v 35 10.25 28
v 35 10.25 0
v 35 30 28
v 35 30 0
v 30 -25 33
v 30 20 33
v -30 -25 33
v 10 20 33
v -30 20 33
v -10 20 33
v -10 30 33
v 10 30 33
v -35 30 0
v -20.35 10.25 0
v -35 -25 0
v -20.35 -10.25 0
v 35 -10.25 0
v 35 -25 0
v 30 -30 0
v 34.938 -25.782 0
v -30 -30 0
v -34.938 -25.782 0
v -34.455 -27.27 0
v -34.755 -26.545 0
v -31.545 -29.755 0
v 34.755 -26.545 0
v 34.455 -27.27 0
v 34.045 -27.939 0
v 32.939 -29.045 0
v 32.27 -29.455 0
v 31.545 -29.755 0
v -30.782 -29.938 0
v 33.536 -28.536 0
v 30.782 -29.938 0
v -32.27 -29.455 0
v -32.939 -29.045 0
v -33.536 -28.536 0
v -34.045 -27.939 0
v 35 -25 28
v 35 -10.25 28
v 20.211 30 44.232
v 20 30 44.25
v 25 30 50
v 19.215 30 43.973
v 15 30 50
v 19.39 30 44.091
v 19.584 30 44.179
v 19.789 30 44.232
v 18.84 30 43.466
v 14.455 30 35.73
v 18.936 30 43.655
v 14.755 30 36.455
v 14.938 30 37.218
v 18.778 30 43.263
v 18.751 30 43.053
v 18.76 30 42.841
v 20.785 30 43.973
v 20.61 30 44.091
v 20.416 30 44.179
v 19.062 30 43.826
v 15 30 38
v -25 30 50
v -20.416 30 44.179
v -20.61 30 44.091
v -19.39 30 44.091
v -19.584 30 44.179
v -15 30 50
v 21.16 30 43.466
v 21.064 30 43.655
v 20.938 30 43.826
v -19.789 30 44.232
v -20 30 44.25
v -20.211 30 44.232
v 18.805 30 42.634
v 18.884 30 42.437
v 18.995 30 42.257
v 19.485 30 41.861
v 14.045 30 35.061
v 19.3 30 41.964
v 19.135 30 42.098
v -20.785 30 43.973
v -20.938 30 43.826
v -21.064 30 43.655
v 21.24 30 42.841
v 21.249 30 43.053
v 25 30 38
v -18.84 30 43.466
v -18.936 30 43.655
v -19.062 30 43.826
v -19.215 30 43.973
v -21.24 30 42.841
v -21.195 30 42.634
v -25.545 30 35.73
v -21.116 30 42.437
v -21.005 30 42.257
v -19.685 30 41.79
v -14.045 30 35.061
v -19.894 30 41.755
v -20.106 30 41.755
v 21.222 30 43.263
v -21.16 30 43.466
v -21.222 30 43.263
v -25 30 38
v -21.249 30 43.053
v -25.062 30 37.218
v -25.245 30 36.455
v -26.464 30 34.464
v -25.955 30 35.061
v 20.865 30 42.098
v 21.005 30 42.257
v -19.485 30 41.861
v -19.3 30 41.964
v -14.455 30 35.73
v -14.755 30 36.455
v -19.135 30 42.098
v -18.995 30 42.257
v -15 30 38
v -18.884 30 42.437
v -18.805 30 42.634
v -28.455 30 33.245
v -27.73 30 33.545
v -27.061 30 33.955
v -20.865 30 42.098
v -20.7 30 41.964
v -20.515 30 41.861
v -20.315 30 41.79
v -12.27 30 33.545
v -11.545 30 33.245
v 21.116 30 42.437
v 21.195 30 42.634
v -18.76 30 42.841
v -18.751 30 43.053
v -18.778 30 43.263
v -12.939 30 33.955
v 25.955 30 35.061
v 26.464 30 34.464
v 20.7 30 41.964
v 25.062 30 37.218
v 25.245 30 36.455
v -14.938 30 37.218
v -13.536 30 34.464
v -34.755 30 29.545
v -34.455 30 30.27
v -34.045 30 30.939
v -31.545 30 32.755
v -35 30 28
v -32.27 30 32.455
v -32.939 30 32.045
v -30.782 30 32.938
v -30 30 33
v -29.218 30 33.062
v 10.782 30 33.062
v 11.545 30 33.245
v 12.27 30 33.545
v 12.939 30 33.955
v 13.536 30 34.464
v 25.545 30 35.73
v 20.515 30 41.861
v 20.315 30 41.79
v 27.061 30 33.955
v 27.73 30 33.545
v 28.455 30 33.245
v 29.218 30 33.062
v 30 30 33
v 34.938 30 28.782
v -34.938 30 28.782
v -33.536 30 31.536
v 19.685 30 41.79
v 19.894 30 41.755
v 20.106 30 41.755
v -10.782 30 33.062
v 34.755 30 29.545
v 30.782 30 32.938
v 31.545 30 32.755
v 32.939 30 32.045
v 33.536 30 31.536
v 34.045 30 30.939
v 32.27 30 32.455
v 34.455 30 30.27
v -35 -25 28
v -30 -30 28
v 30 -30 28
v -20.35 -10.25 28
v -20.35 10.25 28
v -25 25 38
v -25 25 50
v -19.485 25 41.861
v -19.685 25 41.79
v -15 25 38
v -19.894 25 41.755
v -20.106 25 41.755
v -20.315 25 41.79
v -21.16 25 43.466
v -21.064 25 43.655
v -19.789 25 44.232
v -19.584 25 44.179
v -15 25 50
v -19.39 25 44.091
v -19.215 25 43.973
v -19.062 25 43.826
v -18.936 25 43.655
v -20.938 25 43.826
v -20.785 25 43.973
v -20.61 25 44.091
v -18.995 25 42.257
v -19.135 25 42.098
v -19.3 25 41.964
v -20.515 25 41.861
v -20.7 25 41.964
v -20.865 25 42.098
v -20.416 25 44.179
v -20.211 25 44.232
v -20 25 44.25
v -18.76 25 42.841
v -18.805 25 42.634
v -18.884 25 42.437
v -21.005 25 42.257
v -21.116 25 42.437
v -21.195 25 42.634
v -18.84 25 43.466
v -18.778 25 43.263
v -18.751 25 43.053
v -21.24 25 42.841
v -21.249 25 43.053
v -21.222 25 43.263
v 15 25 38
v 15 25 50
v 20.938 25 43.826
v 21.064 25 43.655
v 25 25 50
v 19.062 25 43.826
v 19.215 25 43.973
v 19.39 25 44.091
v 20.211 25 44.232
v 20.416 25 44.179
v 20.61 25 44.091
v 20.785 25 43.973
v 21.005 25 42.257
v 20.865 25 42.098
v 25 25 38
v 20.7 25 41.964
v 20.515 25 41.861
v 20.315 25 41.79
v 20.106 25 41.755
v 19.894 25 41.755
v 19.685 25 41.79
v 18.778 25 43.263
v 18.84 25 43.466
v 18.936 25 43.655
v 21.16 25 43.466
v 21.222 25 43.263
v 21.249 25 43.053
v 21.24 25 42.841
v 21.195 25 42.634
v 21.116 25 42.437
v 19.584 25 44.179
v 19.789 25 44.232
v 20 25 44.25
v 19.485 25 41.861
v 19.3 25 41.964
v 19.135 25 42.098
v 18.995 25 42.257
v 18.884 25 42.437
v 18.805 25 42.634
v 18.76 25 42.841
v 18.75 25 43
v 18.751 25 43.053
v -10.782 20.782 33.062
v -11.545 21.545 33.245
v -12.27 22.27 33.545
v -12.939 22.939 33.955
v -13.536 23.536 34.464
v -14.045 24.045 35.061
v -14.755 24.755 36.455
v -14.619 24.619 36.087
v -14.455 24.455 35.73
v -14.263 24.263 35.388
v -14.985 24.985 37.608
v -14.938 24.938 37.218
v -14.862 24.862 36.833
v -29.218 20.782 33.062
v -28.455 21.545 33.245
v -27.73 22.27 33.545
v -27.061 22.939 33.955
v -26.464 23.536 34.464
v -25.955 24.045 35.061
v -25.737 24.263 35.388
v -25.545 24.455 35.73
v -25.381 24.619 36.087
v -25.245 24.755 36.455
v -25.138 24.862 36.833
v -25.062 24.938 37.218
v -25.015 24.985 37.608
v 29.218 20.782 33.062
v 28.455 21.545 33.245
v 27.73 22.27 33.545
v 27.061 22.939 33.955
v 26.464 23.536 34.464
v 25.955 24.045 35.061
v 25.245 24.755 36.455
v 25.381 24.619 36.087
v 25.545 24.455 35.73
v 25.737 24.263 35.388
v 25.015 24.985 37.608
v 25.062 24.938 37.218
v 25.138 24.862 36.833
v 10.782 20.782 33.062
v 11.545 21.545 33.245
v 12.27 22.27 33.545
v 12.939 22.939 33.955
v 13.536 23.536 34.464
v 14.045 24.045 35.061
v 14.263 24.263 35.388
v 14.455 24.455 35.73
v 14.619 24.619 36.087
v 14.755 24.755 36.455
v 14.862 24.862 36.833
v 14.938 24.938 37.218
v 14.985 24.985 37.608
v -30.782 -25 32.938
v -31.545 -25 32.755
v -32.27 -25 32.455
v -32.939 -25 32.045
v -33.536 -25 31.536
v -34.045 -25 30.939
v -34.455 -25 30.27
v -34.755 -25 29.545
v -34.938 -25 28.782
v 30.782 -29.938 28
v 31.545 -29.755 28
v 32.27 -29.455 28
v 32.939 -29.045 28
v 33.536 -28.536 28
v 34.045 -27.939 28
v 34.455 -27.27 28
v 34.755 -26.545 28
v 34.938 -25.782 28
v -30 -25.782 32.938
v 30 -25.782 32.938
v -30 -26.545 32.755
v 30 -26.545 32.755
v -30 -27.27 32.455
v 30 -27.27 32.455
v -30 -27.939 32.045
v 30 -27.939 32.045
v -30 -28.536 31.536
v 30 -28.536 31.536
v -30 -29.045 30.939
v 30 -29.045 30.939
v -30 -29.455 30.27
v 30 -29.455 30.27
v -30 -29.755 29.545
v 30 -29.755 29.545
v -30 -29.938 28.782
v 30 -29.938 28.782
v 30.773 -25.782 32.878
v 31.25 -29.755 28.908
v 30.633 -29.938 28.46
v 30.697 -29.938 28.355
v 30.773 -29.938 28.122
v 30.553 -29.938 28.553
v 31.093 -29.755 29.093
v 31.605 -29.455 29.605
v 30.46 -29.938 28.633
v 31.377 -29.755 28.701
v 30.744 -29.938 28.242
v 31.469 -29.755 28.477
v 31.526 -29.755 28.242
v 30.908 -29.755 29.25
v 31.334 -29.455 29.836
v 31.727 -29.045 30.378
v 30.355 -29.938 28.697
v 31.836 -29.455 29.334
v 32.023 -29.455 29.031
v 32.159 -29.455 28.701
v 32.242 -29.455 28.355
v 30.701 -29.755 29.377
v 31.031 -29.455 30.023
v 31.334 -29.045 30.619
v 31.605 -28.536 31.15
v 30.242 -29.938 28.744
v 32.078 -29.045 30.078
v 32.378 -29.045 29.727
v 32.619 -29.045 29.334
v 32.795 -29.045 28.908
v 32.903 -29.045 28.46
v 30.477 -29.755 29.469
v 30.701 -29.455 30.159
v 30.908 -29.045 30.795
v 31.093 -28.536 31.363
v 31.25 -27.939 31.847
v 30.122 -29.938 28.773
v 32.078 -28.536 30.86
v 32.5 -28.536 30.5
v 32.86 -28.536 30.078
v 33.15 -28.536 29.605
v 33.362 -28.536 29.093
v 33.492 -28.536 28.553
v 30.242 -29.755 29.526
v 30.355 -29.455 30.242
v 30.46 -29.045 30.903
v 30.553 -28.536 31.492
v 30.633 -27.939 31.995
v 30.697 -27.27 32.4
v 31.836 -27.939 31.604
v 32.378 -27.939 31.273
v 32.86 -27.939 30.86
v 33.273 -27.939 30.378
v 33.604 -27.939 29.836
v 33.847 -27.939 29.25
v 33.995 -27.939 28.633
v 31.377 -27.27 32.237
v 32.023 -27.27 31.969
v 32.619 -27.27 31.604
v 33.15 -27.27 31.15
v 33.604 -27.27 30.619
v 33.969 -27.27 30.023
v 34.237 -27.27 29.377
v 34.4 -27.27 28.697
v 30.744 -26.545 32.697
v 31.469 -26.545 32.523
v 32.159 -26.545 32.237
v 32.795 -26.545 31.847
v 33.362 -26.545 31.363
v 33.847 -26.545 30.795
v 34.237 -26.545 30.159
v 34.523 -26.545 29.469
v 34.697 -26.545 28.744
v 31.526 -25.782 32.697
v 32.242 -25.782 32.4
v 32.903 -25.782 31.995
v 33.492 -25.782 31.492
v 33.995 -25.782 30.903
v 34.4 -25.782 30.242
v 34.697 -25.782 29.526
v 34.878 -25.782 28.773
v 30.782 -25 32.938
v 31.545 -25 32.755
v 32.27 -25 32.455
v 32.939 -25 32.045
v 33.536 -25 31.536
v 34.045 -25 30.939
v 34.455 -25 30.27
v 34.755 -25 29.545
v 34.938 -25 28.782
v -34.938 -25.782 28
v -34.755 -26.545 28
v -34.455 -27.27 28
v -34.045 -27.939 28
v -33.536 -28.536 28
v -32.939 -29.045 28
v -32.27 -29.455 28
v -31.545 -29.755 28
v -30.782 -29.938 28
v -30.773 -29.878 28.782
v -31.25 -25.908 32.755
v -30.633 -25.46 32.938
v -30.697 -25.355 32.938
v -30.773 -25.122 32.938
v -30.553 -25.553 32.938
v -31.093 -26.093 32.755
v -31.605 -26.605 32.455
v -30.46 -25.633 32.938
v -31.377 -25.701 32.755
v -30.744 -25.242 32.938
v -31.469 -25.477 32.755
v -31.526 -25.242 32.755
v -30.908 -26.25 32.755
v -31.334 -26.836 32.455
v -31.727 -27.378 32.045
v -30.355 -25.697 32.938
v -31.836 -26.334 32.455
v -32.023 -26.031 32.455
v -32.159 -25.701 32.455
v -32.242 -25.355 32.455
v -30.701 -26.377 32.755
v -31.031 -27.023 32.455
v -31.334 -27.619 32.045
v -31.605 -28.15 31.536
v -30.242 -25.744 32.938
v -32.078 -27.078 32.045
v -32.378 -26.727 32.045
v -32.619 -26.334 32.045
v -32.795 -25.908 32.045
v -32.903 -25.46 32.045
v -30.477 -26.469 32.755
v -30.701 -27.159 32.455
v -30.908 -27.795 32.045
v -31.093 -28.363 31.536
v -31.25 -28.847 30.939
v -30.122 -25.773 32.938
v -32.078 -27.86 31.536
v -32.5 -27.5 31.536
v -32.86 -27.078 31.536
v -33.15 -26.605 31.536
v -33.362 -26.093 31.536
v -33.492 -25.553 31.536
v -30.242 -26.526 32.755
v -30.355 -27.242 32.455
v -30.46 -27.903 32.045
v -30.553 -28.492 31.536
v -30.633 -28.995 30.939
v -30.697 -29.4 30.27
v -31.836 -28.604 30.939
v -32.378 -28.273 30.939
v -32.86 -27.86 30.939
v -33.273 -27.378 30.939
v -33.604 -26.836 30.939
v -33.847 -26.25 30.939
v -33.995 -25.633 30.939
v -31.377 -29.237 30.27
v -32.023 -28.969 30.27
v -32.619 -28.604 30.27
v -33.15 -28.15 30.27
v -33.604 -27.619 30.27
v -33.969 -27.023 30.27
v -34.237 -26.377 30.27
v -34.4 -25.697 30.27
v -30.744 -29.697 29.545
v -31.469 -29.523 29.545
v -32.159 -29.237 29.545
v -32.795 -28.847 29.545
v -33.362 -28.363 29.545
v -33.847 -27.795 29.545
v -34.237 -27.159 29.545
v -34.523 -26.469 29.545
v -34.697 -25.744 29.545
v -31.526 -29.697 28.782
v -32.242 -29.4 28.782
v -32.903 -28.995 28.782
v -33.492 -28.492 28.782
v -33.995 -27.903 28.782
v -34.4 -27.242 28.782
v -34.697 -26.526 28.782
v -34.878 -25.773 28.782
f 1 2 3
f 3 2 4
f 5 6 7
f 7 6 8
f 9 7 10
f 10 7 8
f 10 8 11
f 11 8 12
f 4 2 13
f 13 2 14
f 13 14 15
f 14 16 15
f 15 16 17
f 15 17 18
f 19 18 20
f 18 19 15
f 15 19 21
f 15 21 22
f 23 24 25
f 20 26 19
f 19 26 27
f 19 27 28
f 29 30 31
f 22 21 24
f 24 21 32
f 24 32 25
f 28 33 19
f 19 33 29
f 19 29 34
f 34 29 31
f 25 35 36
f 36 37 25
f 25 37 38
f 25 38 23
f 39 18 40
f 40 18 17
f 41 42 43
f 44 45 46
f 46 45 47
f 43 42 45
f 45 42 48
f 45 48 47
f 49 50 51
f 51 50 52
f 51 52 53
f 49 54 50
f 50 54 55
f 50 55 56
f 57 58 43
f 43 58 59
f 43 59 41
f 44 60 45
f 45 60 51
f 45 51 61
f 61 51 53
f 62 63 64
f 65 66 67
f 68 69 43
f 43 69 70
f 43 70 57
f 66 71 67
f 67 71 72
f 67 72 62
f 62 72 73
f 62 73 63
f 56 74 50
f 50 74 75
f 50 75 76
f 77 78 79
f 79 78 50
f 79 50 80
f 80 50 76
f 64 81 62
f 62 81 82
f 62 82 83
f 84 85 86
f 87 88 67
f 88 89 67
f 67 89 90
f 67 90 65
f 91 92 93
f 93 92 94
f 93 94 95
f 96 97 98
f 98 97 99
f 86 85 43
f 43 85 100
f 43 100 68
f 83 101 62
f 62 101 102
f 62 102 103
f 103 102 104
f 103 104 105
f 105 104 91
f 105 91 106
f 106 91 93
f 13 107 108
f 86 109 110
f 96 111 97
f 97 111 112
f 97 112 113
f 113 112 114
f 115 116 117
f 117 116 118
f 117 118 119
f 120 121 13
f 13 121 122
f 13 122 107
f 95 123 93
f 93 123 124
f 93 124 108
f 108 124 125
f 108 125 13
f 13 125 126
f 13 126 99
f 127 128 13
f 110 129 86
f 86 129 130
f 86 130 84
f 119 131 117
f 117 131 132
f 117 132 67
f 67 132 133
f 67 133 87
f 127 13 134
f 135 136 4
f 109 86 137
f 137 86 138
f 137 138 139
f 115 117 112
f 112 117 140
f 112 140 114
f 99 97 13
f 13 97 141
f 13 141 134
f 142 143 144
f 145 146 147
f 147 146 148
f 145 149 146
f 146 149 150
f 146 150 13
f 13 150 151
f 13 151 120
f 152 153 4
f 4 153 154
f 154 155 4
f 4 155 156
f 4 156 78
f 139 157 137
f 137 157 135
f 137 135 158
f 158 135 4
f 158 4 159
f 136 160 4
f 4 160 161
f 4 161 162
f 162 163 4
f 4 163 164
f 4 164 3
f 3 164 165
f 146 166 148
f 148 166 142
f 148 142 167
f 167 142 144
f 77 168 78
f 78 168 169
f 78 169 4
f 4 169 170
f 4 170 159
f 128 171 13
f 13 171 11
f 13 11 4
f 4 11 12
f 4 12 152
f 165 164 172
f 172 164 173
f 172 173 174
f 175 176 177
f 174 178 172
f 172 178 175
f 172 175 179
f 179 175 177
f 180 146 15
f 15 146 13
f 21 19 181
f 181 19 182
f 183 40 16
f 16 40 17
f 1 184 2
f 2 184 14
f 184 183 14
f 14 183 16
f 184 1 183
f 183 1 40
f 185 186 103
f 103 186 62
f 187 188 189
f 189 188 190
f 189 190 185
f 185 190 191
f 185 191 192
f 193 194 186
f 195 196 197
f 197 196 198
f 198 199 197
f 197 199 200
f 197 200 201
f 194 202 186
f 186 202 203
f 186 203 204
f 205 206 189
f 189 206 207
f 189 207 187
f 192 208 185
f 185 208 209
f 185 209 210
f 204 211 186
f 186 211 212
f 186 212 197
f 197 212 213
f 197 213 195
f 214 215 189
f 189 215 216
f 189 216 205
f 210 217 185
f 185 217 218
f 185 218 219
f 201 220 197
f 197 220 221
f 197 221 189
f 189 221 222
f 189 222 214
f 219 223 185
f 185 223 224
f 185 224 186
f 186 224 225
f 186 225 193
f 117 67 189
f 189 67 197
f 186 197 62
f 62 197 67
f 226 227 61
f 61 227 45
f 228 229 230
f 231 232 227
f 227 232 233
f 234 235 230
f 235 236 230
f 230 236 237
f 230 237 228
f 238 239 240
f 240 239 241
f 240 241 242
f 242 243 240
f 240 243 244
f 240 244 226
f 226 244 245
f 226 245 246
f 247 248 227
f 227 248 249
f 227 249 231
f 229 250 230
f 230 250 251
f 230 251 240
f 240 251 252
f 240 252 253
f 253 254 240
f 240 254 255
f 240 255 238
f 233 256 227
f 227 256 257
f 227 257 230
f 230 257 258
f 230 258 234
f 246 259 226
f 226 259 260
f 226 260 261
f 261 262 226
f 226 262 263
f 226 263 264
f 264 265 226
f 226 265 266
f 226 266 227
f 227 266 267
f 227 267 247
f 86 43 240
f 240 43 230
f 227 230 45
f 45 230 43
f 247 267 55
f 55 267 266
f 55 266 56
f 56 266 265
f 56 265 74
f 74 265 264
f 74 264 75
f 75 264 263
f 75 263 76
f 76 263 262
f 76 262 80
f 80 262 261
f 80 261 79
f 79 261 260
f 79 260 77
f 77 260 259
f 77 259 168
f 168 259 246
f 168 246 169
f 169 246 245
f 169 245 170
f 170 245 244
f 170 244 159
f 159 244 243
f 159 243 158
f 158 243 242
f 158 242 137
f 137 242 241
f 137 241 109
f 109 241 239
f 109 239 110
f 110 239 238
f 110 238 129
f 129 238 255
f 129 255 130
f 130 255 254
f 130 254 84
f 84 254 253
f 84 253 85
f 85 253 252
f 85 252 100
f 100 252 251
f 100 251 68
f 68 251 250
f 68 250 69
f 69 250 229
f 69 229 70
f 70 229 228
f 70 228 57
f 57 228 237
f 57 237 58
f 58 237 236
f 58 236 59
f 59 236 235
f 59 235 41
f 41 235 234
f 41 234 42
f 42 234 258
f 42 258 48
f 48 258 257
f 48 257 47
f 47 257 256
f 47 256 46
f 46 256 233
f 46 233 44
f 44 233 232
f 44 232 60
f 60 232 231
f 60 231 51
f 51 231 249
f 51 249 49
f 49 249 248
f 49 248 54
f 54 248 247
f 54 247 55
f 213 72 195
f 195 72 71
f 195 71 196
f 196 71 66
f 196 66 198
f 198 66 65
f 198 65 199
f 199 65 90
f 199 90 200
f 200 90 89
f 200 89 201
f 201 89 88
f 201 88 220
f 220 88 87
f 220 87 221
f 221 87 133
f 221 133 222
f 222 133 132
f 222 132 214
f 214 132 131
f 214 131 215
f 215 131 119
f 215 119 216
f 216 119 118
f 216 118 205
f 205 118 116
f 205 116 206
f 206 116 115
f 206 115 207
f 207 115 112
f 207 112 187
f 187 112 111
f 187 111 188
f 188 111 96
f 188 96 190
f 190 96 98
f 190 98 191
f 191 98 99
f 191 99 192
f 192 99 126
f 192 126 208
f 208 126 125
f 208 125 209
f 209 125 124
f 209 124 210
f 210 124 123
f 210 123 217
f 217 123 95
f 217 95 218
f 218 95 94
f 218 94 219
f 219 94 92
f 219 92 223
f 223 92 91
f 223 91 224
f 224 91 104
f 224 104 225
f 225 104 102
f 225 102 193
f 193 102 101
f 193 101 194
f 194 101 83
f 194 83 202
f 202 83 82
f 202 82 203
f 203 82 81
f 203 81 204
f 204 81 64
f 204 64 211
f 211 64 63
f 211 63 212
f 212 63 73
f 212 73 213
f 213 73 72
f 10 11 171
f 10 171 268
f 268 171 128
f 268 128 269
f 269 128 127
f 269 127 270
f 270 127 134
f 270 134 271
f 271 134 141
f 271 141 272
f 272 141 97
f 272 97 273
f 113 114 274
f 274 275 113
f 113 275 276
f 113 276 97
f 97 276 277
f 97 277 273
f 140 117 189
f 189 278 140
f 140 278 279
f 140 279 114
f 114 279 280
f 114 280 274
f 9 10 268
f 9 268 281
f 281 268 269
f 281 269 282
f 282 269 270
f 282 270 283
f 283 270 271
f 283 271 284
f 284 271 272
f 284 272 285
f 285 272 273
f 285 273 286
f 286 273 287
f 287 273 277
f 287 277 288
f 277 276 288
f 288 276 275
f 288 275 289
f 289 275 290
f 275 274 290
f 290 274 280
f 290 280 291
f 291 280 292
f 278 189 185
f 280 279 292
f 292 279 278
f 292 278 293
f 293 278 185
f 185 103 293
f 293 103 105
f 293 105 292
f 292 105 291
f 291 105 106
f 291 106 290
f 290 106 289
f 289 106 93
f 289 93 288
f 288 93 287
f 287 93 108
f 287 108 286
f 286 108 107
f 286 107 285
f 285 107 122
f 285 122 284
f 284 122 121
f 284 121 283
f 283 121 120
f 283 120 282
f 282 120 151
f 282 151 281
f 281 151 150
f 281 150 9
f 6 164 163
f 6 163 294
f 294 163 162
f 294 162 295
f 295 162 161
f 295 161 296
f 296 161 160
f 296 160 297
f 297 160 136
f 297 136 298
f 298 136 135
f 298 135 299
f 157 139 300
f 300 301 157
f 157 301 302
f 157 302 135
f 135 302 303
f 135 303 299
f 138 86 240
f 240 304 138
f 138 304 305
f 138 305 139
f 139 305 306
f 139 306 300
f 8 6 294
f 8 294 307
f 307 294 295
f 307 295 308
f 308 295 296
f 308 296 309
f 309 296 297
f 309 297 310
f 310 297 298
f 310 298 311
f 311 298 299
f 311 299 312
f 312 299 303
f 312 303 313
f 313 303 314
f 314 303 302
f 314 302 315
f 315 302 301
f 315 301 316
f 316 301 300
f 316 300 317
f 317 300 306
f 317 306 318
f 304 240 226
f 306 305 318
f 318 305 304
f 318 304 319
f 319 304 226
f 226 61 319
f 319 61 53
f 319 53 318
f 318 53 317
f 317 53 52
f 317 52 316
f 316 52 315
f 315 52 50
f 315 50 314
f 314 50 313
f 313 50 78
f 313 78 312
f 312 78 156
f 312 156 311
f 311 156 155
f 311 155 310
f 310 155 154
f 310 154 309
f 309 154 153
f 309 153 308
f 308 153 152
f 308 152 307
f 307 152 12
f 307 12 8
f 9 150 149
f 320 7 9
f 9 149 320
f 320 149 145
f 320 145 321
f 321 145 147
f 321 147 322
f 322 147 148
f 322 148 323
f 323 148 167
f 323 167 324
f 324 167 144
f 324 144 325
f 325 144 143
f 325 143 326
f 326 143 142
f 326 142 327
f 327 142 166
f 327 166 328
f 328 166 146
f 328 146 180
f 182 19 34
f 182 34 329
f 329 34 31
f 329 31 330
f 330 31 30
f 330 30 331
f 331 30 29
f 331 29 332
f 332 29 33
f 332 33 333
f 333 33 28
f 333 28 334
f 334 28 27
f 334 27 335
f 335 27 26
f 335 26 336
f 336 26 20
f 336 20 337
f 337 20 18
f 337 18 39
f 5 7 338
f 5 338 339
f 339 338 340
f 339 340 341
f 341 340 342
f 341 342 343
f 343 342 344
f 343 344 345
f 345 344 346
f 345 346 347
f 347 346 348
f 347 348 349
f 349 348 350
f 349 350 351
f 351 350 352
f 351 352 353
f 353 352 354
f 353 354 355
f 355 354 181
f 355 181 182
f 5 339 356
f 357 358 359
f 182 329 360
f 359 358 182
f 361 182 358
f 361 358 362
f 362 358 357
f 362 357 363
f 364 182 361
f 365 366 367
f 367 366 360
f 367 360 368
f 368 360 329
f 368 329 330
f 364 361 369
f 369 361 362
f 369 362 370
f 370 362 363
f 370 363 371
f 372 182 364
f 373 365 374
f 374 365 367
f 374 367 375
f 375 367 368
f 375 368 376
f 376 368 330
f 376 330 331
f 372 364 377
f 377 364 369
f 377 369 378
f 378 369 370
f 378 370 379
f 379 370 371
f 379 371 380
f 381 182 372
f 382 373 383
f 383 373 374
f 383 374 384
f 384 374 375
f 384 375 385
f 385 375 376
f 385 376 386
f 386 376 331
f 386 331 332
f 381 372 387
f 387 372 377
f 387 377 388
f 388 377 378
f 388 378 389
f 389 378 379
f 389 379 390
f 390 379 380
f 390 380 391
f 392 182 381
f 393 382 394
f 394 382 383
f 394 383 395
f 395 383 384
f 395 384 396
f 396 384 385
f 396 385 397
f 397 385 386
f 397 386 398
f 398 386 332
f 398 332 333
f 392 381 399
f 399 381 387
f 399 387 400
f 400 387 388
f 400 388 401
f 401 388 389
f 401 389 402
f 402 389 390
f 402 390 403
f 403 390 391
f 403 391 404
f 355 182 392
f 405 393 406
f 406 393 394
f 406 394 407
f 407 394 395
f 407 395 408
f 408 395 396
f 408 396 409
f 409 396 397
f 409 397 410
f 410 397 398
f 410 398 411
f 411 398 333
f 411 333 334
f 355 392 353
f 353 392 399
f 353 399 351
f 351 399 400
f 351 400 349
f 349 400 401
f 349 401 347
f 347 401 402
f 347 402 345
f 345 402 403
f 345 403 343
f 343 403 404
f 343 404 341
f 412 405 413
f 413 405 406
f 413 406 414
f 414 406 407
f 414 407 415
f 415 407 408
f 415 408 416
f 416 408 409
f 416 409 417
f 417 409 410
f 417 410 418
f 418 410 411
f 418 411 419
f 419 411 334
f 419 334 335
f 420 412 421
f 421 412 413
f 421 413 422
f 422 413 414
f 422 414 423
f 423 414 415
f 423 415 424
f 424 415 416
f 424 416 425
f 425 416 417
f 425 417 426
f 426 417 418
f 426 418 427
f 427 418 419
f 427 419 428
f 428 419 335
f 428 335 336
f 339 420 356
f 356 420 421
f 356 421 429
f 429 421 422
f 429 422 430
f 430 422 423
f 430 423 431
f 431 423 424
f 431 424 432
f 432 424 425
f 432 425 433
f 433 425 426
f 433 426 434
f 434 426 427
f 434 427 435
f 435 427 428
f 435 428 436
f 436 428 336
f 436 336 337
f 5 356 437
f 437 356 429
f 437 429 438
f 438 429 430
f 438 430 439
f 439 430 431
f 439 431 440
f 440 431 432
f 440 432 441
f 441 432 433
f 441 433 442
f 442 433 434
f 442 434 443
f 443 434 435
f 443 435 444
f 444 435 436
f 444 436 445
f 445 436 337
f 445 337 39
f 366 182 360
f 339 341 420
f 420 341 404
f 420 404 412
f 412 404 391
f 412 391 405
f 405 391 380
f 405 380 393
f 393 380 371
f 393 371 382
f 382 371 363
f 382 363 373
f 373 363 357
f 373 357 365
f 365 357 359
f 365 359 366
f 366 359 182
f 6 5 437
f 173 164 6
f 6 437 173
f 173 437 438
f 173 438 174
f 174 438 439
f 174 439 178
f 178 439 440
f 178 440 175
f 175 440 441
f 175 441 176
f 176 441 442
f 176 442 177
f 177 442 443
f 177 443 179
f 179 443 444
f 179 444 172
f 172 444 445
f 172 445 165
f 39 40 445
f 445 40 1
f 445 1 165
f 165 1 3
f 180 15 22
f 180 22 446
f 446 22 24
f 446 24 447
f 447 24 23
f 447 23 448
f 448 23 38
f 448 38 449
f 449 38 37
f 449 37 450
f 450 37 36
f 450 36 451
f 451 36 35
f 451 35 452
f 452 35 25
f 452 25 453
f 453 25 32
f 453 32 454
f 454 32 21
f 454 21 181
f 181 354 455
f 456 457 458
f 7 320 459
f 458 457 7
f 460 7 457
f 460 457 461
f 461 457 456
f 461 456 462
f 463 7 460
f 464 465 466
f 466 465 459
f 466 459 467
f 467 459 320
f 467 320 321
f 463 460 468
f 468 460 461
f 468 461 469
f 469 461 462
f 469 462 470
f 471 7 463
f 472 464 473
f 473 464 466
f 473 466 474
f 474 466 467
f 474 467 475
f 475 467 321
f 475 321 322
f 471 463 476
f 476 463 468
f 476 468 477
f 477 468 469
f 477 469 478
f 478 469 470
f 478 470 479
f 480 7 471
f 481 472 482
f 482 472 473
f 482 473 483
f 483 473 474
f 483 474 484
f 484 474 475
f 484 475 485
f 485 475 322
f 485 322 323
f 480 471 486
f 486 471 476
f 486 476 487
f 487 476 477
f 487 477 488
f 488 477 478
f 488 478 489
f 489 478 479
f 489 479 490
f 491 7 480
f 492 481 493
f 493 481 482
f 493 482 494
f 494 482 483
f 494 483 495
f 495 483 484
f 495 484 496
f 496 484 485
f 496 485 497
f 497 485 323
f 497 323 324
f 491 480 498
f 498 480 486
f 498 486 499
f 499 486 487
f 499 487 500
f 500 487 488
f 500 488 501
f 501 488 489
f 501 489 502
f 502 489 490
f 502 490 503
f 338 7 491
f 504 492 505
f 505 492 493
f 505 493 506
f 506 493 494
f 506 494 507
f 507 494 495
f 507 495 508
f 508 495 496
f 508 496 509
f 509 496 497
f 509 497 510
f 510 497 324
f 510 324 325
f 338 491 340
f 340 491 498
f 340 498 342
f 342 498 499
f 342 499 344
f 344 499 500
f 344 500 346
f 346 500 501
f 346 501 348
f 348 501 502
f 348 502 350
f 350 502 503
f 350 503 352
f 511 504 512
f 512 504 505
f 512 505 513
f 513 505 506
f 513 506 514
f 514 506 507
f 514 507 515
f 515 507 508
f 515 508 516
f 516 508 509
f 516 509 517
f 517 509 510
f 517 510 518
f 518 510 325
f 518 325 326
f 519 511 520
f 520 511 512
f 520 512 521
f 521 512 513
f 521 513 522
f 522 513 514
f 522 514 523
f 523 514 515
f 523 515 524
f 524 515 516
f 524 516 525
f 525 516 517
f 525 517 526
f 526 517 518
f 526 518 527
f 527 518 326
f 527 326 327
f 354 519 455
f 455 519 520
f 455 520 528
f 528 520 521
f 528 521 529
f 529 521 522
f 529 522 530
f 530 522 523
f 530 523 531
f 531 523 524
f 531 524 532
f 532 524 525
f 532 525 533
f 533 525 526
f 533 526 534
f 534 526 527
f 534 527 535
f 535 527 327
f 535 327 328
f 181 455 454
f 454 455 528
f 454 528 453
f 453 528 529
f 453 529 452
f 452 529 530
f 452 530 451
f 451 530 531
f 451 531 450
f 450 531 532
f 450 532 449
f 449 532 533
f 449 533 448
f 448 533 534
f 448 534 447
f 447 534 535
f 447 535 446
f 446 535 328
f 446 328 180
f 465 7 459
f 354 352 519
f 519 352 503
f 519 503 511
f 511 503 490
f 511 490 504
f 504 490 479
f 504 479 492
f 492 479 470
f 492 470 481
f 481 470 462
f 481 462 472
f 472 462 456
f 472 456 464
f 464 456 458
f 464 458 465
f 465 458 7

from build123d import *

# Parameters (mm, degrees)
SKETCH_2_W          = 70
SKETCH_2_H          = 60
EXTRUDE_2_DEPTH     = 33
SKETCH_3_W          = 40.7
SKETCH_3_H          = 20.5
CUT_EXTRUDE_1_DEPTH = 28
SKETCH_4_W          = 14.65
SKETCH_4_H          = 20.5
EXTRUDE_3_DEPTH     = 28
SKETCH_5_W          = 14.65
SKETCH_5_H          = 20.5
CUT_EXTRUDE_4_DEPTH = 28
SKETCH_8_W          = 10
SKETCH_8_H          = 5
EXTRUDE_5_DEPTH     = 50
M3X0_5_1_D          = 2.5
FILLET_1_R          = 5
FILLET_2_R          = 5
FILLET_3_R          = 5


# Some blends are built 0.0001 mm under size
with BuildPart() as part:
    # ｽｹｯﾁ2 → ﾎﾞｽ - 押し出し2 (new body)
    with BuildSketch(Plane.XY):
        Rectangle(SKETCH_2_W, SKETCH_2_H)
    extrude(amount=EXTRUDE_2_DEPTH)

    # ｽｹｯﾁ3 → ｶｯﾄ - 押し出し1 (cut)
    with BuildSketch(Plane.XY):
        Rectangle(SKETCH_3_W, SKETCH_3_H)
    extrude(amount=CUT_EXTRUDE_1_DEPTH, mode=Mode.SUBTRACT)

    # ｽｹｯﾁ4 → ﾎﾞｽ - 押し出し3 (add)
    with BuildSketch(Plane.XY):
        with Locations((27.675, 0)):
            Rectangle(SKETCH_4_W, SKETCH_4_H)
    extrude(amount=EXTRUDE_3_DEPTH)

    # ｽｹｯﾁ5 → ｶｯﾄ - 押し出し4 (cut)
    with BuildSketch(Plane.XY):
        with Locations((27.675, 0)):
            Rectangle(SKETCH_5_W, SKETCH_5_H)
    extrude(amount=CUT_EXTRUDE_4_DEPTH, mode=Mode.SUBTRACT)

    # ｽｹｯﾁ8 → ﾎﾞｽ - 押し出し5 (add)
    with BuildSketch(Plane.XY):
        with Locations((-20, 27.5)):
            Rectangle(SKETCH_8_W, SKETCH_8_H)
        with Locations((20, 27.5)):
            Rectangle(SKETCH_8_W, SKETCH_8_H)
    extrude(amount=EXTRUDE_5_DEPTH)

    # M3x0.5 ねじ穴1 (through all)
    with Locations(Plane(origin=(0, 30, 0), x_dir=(1, 0, 0), z_dir=(0, 1, 0))):
        with Locations((-20, -43), (20, -43)):
            Hole(M3X0_5_1_D / 2)

    # ﾌｨﾚｯﾄ1
    fillet_1_edges = [part.edges().sort_by_distance(p)[0] for p in [
        (-15, 27.5, 33),
        (-20, 25, 33),
        (-25, 27.5, 33),
        (20, 25, 33),
        (15, 27.5, 33),
        (25, 27.5, 33),
    ]]
    fillet(fillet_1_edges, radius=FILLET_1_R)

    # ﾌｨﾚｯﾄ2
    fillet_2_edges = [part.edges().sort_by_distance(p)[0] for p in [
        (35, 0, 33),
        (35, -30, 16.5),
        (0, -30, 33),
        (-35, 0, 33),
    ]]
    fillet(fillet_2_edges, radius=FILLET_2_R - 0.0001)  # a hair under: the kernel refuses the full size

    # ﾌｨﾚｯﾄ3
    # the kernel refuses this fillet: 5 mm, written as the material it takes off along each edge
    with BuildSketch(Plane(origin=(-30, -25, 33), x_dir=(-1, 0, 0), z_dir=(0, 1, 0))) as fillet_3_piece_1:
        with BuildLine():
            CenterArc((0.0001, -4.9999), 4.9999, 0, 90)
            Line((5, -4.9999), (5, 0))
            Line((5, 0), (0.0001, 0))
        make_face()
    revolve(axis=Axis((-30, -25, 33), (0, 0, 1)), revolution_arc=90, mode=Mode.SUBTRACT)
    with BuildSketch(Plane(origin=(-35, -30, -12.5), x_dir=(0, 1, 0), z_dir=(0, 0, 1))) as fillet_3_piece_2:
        with BuildLine():
            CenterArc((FILLET_3_R, -FILLET_3_R), FILLET_3_R, 90, 90)
            Line((0, -FILLET_3_R), (0, 0))
            Line((0, 0), (FILLET_3_R, 0))
        make_face()
    extrude(amount=45.5, mode=Mode.SUBTRACT)


solid = part.part
